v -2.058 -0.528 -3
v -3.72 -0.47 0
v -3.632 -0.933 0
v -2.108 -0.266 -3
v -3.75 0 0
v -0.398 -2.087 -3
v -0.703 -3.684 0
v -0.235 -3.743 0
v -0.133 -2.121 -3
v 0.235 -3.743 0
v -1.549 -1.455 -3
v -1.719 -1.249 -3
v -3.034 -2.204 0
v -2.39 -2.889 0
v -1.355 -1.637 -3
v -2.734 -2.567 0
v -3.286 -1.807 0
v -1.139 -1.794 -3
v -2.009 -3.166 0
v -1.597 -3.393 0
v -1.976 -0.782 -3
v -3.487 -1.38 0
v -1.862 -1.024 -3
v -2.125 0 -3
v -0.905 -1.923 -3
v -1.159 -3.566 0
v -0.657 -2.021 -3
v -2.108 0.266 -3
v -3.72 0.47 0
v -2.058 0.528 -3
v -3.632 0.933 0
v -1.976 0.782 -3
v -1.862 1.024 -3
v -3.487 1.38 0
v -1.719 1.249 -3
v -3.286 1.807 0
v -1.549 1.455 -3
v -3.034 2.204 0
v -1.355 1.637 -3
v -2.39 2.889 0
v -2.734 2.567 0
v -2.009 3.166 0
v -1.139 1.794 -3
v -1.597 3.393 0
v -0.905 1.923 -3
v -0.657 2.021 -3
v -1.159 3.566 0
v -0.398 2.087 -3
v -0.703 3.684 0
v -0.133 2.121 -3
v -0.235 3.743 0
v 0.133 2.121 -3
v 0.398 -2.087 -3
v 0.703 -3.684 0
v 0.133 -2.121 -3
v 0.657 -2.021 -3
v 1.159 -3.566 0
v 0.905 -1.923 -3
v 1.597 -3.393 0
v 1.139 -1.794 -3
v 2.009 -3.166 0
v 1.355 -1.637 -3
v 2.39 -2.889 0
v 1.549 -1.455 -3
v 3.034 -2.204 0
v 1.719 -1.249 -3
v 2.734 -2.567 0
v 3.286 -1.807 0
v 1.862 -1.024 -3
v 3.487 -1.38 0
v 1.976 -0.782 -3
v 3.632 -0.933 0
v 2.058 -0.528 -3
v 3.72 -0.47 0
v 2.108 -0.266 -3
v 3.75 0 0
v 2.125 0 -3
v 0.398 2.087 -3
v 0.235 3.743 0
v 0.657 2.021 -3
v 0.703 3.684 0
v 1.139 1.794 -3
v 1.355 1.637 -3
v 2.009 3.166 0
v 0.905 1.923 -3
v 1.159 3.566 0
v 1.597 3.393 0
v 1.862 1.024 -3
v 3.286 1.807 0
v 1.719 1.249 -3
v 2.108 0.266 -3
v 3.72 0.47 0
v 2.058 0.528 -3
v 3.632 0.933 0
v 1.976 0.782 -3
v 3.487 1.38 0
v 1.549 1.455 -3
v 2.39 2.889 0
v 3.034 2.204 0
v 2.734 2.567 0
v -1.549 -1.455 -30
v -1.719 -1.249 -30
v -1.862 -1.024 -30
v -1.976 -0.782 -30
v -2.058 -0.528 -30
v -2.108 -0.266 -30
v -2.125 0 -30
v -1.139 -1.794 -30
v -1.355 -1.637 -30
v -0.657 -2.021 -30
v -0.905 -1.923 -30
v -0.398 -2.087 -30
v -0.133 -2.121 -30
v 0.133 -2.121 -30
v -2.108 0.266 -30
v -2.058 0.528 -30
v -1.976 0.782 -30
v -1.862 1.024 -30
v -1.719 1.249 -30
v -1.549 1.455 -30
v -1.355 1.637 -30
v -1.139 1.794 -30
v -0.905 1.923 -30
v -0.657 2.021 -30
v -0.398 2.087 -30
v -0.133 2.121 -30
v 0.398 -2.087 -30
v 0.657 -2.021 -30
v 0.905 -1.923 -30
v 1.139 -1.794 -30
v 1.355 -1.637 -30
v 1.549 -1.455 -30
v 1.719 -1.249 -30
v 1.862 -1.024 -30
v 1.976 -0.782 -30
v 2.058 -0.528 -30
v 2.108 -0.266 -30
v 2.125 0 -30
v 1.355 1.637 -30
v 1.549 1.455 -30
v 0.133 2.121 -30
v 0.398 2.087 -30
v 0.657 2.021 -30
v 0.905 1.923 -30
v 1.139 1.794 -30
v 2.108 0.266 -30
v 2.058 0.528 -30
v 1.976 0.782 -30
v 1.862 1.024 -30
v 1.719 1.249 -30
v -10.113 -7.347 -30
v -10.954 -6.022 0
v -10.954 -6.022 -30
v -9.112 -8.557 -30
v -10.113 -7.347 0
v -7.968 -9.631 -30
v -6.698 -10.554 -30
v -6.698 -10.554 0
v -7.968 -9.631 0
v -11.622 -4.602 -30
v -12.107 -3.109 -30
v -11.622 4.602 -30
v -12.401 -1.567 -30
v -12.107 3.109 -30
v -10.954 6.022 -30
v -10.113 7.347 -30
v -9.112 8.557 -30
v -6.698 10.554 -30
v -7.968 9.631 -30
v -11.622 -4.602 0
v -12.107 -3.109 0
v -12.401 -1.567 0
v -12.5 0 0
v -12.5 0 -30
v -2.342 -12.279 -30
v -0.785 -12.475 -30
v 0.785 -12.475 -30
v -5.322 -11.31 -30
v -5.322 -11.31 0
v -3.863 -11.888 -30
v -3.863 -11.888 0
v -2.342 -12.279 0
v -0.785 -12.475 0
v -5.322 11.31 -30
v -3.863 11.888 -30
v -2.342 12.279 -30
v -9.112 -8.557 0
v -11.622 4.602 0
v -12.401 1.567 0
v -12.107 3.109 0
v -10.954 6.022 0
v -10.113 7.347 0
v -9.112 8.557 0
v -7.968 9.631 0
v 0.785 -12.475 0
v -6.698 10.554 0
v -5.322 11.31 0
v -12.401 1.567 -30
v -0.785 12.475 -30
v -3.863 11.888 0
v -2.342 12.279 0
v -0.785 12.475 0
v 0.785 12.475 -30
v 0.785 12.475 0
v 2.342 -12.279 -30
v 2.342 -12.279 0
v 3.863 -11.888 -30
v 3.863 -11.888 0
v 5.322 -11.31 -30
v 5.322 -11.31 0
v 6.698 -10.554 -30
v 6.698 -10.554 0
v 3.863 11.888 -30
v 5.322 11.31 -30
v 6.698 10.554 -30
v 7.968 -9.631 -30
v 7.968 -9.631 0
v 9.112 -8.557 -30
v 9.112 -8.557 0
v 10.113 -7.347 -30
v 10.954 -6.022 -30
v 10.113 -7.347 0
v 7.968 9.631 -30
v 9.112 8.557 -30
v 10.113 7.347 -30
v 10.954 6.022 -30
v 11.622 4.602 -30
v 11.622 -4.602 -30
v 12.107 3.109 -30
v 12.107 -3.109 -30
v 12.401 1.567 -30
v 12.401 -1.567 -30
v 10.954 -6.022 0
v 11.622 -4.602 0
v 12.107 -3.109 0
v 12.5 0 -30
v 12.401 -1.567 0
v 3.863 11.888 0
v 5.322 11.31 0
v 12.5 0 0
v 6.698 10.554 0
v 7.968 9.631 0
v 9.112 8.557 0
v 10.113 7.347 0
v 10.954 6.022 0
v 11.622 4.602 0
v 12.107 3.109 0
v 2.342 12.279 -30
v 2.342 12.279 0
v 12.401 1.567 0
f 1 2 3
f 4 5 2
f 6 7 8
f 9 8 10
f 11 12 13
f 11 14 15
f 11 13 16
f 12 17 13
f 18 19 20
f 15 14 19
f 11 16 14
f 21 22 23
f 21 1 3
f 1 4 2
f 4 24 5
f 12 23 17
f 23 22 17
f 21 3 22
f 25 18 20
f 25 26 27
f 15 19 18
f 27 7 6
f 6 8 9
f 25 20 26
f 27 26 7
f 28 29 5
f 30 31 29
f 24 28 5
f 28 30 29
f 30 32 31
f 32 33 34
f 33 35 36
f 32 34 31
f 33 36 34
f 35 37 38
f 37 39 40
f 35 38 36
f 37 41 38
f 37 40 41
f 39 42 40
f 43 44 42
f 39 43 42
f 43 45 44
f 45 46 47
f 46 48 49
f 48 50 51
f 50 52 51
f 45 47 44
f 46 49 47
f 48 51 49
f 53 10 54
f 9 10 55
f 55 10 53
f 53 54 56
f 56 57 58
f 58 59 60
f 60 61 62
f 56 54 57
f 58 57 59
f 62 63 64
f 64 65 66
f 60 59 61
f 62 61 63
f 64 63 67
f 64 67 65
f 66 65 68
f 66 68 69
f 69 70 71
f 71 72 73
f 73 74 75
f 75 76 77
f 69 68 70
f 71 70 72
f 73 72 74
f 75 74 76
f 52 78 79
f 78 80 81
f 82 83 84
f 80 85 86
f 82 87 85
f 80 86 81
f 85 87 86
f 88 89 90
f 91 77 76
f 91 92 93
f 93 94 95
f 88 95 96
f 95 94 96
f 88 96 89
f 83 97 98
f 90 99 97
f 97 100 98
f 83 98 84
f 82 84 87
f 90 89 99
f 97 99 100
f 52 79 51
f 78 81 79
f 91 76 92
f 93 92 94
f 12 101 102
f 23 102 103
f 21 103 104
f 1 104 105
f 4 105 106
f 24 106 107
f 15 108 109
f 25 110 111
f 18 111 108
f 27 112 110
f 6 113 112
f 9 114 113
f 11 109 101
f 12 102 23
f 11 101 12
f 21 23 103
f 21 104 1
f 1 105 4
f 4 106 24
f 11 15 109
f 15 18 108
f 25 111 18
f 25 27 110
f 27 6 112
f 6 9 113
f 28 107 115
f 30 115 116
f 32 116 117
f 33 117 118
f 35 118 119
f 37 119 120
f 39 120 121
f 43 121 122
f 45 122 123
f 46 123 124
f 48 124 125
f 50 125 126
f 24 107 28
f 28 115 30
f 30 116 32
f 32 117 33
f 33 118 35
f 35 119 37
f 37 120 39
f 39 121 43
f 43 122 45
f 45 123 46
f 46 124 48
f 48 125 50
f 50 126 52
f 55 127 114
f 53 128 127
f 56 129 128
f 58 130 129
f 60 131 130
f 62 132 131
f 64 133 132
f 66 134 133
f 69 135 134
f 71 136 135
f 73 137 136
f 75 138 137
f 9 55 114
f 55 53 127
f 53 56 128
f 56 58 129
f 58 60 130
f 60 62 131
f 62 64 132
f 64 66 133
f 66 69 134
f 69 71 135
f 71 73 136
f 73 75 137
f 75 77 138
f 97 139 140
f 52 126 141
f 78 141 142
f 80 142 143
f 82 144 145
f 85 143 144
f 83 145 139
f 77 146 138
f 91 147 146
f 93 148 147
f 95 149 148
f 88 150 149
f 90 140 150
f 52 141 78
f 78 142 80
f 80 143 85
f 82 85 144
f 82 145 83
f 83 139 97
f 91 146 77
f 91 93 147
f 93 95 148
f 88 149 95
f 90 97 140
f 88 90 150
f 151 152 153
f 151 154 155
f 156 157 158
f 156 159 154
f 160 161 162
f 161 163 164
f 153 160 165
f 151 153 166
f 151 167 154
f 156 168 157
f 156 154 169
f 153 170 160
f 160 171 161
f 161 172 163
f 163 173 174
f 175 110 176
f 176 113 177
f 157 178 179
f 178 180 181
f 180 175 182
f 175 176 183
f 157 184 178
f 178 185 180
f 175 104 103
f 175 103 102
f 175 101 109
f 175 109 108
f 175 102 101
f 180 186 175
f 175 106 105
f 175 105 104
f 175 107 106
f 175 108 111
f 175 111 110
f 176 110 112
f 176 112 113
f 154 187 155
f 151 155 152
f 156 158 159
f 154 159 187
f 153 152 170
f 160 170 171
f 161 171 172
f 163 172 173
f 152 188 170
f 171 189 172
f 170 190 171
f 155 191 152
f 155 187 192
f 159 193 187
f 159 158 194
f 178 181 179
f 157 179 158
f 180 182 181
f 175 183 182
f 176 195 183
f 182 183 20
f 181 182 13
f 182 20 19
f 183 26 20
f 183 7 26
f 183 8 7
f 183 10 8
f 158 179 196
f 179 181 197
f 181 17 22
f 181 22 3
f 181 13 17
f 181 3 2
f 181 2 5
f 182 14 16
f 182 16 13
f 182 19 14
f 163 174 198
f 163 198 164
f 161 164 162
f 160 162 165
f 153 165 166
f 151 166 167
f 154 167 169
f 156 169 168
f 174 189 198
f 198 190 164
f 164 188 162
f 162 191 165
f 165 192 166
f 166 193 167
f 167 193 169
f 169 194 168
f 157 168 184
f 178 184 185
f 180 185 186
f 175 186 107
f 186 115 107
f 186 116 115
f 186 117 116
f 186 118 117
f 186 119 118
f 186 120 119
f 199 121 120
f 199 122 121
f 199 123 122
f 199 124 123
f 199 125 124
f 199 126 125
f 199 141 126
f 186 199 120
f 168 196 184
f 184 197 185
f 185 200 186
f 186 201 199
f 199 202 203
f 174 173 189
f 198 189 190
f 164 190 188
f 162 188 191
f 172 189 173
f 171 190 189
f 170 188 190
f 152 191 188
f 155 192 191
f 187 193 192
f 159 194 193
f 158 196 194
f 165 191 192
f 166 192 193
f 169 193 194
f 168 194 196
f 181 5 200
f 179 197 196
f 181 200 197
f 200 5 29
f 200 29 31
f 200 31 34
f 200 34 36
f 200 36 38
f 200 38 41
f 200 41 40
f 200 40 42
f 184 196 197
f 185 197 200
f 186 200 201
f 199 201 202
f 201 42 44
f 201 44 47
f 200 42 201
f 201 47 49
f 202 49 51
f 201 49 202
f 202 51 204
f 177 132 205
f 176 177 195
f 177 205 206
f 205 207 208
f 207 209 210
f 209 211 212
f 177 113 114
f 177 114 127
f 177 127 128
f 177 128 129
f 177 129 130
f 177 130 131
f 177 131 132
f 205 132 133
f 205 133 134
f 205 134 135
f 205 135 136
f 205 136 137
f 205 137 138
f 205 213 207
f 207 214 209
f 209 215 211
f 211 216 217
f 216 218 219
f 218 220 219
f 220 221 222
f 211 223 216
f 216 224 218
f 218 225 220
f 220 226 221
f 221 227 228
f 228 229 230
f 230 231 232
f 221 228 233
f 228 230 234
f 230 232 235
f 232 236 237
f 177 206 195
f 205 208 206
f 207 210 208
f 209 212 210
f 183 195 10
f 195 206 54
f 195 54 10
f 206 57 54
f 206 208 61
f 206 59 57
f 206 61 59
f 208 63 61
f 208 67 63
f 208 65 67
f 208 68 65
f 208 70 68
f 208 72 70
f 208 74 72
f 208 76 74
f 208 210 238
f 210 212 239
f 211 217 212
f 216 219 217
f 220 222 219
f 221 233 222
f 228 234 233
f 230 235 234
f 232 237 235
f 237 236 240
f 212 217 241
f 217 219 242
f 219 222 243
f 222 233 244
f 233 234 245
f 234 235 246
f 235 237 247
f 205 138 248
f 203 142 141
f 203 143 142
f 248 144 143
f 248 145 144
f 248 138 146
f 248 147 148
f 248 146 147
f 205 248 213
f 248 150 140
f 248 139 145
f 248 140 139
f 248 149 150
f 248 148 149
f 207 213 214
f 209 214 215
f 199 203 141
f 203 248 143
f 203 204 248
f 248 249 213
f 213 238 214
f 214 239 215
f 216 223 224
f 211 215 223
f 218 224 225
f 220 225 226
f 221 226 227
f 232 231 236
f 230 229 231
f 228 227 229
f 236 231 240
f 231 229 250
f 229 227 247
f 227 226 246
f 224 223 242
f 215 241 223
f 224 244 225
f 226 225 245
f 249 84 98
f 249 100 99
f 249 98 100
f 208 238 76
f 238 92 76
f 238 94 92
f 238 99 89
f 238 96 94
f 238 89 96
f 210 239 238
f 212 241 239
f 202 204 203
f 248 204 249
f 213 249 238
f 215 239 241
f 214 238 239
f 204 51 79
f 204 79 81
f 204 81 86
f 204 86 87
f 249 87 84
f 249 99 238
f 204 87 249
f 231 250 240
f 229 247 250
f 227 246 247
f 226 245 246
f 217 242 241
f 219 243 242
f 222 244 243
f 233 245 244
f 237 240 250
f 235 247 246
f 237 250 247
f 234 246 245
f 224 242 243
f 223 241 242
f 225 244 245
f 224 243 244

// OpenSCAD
$fn = 50;


difference() {
	union() {
		translate(v = [0, 0, -30.0000000000]) {
			cylinder(h = 30, r = 12.5000000000);
		}
	}
	union() {
		translate(v = [0, 0, 0]) {
			rotate(a = [0, 0, 0]) {
				difference() {
					union() {
						translate(v = [0, 0, -33.0000000000]) {
							cylinder(h = 33, r = 2.0000000000);
						}
						translate(v = [0, 0, -3]) {
							cylinder(h = 3, r1 = 2.1250000000, r2 = 3.7500000000);
						}
						translate(v = [0, 0, -33.0000000000]) {
							cylinder(h = 33, r = 2.1250000000);
						}
						translate(v = [0, 0, -33.0000000000]) {
							cylinder(h = 33, r = 2.0000000000);
						}
					}
					union();
				}
			}
		}
	}
}
